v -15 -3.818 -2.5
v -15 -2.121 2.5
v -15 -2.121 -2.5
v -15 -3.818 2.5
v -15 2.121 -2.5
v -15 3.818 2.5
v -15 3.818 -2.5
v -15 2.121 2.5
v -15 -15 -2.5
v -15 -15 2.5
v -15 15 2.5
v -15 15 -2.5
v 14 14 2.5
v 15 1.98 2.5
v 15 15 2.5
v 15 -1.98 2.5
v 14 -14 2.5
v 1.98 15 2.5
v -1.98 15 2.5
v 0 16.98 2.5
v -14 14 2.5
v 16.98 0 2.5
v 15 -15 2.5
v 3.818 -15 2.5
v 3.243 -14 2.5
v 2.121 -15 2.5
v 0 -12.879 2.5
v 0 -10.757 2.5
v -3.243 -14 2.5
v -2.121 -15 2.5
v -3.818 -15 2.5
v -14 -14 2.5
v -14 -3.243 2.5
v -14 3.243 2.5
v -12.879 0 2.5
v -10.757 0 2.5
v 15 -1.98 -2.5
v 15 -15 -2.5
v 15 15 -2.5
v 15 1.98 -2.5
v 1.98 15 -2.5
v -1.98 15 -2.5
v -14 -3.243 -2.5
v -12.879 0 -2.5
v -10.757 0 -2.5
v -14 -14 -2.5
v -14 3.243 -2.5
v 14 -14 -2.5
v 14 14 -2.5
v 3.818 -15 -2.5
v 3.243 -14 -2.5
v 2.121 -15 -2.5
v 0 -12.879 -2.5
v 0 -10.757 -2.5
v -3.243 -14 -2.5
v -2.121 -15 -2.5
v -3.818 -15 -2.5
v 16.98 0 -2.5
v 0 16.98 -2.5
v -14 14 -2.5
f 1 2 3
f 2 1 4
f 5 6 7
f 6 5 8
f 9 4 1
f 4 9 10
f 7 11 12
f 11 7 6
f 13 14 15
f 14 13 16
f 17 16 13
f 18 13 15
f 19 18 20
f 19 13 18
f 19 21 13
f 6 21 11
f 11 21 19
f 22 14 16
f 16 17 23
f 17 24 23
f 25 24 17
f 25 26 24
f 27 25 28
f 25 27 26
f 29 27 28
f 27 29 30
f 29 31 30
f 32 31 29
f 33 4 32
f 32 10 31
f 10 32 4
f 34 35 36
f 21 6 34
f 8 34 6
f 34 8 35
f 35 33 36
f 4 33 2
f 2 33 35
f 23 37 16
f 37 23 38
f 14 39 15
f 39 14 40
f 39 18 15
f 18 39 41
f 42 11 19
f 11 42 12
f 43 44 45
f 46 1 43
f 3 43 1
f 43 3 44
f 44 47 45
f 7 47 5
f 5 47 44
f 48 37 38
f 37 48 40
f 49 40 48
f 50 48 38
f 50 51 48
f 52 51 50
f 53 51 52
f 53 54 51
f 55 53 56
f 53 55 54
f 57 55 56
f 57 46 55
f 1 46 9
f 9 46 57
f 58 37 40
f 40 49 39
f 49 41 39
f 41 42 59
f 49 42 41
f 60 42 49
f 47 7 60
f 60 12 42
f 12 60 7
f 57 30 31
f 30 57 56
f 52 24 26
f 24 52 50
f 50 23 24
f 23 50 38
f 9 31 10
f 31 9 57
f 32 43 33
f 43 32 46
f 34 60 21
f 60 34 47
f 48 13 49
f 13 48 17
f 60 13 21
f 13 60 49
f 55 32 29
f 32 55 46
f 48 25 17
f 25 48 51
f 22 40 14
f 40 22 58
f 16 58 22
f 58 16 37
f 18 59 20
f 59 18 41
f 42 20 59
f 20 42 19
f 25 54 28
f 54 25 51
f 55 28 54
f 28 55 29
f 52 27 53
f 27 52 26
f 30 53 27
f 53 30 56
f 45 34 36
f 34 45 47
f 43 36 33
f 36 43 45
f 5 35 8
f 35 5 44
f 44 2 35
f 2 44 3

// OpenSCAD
tile_width=30;
tile_border_width=2;
tile_height=5;
notch_size=3;
notch_margin=0.2;

module external_world(x, y) {
    translate([x*tile_width, y*tile_width]) {
        cube([tile_width, tile_width, 2*tile_height], center=true);
    }
}

module outer_cube() {
    cube([tile_width, tile_width, tile_height], center=true);
}

module inner_cube() {
    cube([tile_width-tile_border_width, tile_width-tile_border_width, 2*tile_height], center=true);   
}

module notch(x, y, size, height) {         
    translate([x, y]) rotate([0, 0, 45]) { cube([size, size, height], center=true); }   
    
}

module one_by_one() {
    union() {
        difference() {
            union() {
                difference() { outer_cube(); inner_cube(); }
                difference() { notch(+tile_width*0.5, 0, notch_size-notch_margin, tile_height); inner_cube(); }
                difference() { notch(0, +tile_width*0.5, notch_size-notch_margin, tile_height); inner_cube(); }
            }
            notch(-tile_width*0.5, 0, notch_size*1.8, tile_height*2);
            notch(0, -tile_width*0.5, notch_size*1.8, tile_height*2);
        }
        difference() {
            notch(0, -tile_width*0.5, 2*notch_size, tile_height);
            external_world(0, -1);
            notch(0, -tile_width*0.5, notch_size, 2*tile_height);
        }
        difference() {
            notch(-tile_width*0.5, 0, 2*notch_size, tile_height);
            external_world(-1, 0);
            notch(-tile_width*0.5, 0, notch_size, 2*tile_height);
        }
    }
}

one_by_one();

// translate([tile_width+0.1, 0, 0]) { one_by_one(); }
